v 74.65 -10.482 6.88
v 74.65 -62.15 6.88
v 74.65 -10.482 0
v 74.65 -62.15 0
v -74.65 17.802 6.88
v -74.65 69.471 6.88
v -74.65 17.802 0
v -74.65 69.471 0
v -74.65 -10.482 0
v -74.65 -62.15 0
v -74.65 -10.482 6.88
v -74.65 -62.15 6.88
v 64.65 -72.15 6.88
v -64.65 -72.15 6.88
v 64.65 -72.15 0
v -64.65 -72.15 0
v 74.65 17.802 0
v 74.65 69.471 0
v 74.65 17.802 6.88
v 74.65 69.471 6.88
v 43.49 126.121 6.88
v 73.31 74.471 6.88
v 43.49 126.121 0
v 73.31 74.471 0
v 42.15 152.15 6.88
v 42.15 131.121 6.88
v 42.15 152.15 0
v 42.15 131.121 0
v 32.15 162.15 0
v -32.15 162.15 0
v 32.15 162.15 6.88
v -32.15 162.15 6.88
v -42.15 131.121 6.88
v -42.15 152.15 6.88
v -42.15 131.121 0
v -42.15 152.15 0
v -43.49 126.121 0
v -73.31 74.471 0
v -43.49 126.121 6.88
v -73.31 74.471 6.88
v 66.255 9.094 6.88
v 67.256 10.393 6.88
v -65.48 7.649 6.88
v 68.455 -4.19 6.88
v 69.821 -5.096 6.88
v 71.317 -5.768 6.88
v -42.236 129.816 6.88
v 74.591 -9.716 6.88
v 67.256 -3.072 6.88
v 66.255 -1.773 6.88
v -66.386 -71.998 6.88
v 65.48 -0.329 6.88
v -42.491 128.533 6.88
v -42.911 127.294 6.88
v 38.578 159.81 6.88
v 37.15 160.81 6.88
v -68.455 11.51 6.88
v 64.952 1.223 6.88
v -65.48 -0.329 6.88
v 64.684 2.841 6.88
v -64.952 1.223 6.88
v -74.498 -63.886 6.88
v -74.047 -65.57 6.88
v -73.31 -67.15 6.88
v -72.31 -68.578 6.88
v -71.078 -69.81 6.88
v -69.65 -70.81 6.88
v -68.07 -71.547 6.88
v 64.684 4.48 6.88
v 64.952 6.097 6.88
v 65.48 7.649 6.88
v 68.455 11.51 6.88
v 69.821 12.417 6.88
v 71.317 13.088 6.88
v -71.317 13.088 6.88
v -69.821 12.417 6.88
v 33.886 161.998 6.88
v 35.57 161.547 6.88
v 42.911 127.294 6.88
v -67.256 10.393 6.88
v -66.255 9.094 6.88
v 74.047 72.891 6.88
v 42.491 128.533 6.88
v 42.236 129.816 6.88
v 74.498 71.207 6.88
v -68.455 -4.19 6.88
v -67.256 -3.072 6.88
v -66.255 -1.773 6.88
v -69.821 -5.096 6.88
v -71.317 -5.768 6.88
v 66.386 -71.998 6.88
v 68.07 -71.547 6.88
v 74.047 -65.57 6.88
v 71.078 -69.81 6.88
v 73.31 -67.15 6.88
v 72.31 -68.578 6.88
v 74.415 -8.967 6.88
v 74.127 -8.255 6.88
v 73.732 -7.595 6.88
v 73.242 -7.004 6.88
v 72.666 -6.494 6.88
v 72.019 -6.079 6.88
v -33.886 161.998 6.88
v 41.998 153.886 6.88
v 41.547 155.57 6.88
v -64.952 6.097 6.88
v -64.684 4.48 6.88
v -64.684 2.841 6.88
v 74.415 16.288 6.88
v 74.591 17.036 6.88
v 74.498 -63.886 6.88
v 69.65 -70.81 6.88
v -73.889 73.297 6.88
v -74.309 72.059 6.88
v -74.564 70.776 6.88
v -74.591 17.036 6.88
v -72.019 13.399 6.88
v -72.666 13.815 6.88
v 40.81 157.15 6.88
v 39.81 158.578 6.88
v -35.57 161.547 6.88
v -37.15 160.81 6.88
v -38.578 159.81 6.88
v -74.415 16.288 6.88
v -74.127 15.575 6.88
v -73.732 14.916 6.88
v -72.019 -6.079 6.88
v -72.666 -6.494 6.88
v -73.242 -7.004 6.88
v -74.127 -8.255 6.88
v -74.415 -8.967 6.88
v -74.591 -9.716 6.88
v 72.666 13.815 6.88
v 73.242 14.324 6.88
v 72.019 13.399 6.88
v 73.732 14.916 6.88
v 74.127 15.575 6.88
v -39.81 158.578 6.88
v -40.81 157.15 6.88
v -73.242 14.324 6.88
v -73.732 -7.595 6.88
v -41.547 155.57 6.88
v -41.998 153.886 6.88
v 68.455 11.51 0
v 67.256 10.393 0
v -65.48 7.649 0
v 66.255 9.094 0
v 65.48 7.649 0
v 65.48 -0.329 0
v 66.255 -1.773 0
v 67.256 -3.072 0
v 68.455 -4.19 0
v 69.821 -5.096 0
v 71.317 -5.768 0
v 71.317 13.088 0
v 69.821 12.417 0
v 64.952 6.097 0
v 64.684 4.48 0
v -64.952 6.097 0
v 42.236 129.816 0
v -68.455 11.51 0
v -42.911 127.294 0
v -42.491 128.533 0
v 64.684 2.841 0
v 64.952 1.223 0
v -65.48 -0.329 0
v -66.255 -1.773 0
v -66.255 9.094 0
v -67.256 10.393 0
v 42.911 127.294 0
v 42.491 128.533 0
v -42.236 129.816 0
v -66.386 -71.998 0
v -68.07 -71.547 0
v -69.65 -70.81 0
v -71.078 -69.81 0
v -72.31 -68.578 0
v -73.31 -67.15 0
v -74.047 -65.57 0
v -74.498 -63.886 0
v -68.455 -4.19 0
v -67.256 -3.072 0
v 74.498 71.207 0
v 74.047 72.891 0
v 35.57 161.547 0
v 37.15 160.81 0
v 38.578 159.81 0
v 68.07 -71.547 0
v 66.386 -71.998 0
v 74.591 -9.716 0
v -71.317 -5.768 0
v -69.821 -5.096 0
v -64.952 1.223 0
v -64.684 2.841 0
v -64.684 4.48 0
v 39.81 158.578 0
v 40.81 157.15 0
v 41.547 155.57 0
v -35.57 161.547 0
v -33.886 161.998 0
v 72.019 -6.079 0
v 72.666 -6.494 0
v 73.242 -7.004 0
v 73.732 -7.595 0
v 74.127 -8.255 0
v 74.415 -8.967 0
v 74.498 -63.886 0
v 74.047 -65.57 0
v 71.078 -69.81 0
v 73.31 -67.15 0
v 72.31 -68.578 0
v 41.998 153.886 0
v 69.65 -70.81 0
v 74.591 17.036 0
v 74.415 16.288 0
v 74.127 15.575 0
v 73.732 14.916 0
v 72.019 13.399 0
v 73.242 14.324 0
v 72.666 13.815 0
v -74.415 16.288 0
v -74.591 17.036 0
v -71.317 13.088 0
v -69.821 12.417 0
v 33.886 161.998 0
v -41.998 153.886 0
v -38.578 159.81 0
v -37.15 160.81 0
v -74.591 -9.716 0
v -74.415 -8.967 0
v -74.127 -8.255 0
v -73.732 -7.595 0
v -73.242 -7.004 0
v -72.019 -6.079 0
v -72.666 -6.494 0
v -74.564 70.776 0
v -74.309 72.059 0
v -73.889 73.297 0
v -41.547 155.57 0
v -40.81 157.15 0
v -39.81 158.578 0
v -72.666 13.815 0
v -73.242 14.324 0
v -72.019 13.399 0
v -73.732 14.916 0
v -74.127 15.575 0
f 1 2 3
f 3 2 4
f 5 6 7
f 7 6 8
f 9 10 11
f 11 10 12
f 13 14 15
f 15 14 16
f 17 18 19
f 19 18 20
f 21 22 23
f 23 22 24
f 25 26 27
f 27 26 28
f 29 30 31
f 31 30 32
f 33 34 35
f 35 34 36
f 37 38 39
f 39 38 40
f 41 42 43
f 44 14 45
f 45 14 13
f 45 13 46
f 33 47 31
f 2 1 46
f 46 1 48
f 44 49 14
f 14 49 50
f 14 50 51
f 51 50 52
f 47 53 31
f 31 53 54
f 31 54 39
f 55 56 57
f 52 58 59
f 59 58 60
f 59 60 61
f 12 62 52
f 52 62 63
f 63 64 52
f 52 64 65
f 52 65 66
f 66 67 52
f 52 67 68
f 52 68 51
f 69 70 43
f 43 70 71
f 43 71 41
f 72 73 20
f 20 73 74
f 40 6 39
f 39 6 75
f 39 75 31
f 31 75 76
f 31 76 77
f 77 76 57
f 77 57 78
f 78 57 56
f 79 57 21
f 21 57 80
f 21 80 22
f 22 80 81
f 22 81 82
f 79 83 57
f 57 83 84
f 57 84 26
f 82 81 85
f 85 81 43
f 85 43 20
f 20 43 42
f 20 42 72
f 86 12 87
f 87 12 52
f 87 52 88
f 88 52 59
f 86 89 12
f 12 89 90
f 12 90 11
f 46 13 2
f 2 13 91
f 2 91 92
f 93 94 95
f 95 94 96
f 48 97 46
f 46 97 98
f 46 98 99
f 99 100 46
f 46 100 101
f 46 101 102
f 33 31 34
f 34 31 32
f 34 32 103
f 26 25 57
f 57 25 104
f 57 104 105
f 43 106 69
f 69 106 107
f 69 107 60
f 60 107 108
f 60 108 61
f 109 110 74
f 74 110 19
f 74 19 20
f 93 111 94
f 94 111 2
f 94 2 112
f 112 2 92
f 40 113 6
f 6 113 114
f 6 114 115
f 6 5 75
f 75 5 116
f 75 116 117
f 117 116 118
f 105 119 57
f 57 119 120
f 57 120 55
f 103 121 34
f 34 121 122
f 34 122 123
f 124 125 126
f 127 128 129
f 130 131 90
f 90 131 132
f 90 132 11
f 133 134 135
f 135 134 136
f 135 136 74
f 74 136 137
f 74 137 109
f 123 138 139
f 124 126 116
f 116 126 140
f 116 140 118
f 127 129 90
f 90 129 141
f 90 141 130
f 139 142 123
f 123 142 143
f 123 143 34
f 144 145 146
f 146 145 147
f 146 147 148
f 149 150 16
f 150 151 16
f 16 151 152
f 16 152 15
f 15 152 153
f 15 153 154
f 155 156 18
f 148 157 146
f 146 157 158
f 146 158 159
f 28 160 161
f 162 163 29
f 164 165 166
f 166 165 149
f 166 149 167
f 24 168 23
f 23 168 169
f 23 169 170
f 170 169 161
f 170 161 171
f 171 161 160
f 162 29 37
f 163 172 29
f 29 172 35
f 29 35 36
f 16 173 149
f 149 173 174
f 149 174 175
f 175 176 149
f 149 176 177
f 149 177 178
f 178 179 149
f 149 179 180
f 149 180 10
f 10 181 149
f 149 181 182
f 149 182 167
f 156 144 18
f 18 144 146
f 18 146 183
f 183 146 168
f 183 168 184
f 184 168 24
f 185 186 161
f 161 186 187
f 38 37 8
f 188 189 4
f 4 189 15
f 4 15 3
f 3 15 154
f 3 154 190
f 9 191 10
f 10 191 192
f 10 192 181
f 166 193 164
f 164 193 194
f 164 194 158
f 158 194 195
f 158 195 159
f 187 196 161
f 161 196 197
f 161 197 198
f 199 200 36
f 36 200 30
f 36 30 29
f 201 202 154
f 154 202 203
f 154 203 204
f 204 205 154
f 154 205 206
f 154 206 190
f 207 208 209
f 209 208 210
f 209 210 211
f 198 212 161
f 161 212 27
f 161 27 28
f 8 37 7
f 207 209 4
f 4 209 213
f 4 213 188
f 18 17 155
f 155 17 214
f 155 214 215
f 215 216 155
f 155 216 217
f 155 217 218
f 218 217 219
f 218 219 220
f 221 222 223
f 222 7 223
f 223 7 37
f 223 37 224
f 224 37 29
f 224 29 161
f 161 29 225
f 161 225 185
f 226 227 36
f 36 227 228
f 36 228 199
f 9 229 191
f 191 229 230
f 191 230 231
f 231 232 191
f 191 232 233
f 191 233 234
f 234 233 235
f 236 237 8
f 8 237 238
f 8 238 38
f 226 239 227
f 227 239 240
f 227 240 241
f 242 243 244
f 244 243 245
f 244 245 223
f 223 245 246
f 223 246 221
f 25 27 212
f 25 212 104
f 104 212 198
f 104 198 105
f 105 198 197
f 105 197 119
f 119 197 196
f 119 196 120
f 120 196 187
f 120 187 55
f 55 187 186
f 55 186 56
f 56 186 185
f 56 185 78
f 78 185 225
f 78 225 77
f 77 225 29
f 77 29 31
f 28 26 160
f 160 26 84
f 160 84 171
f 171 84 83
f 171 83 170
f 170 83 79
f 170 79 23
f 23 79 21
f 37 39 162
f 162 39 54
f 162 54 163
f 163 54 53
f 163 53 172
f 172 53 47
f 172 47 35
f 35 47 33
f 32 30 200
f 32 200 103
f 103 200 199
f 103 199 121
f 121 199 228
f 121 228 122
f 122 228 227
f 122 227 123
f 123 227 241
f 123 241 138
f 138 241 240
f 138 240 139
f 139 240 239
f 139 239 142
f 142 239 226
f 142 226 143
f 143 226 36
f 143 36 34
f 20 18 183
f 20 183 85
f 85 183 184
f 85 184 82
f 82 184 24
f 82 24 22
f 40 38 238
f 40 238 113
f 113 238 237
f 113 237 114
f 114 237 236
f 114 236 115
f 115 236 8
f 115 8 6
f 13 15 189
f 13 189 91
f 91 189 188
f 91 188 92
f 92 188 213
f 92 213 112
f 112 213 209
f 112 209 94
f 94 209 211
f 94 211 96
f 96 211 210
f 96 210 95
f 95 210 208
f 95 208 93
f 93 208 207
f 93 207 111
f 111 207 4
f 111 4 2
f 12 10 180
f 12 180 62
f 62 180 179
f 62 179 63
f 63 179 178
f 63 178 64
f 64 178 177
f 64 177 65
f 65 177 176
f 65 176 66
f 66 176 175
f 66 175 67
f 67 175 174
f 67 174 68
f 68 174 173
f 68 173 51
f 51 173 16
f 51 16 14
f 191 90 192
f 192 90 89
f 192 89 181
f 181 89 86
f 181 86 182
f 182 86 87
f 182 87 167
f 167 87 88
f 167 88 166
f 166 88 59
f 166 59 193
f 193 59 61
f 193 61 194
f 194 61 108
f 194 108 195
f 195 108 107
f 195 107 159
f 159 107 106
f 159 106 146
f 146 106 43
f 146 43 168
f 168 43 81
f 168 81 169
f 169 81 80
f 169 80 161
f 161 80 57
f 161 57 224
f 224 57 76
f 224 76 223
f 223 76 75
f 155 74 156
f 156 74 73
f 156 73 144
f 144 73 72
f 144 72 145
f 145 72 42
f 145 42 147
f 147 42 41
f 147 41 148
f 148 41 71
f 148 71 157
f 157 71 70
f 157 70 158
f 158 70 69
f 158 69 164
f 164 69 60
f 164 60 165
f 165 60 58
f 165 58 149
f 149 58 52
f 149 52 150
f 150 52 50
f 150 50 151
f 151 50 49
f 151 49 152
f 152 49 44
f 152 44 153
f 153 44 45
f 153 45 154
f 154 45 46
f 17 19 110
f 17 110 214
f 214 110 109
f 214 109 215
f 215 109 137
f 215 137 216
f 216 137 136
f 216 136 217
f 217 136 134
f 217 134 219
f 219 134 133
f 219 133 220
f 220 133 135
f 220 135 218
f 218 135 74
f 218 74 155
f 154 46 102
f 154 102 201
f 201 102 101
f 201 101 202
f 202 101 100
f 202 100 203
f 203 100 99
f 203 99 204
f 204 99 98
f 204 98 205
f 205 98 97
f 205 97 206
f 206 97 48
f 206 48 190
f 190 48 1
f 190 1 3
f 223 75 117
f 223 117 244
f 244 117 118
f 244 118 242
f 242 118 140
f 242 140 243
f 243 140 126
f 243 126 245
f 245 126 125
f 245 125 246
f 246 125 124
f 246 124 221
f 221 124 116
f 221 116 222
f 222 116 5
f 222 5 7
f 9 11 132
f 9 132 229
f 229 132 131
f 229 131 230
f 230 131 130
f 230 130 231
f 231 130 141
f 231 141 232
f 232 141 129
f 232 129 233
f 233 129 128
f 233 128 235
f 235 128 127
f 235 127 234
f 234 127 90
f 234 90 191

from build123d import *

# Parameters (mm, degrees)
BOSS_EXTRUDE1_DEPTH = 6.88
FILLET1_R           = 10
SKETCH2_R           = 10
CUT_EXTRUDE1_DEPTH  = 179.640923083
FILLET2_R           = 5


with BuildPart() as part:
    # Sketch1 → Boss-Extrude1 (new body)
    with BuildSketch(Plane.XY):
        Polygon((-74.65, 72.15), (-42.15, 128.441651246), (-42.15, 162.15), (-22.688475773, 162.15), (22.688475773, 162.15), (42.15, 162.15), (42.15, 128.441651246), (74.65, 72.15), (74.65, -72.15), (-74.65, -72.15), align=None)
    extrude(amount=BOSS_EXTRUDE1_DEPTH)

    # Fillet1
    fillet1_edges = [part.edges().sort_by_distance(p)[0] for p in [
        (-74.65, 72.15, 3.44),
        (-42.15, 128.441651246, 3.44),
        (-42.15, 162.15, 3.44),
        (42.15, 162.15, 3.44),
        (42.15, 128.441651246, 3.44),
        (74.65, 72.15, 3.44),
        (74.65, -72.15, 3.44),
        (-74.65, -72.15, 3.44),
    ]]
    fillet(fillet1_edges, radius=FILLET1_R)

    # Sketch2 → Cut-Extrude1 (cut, through all)
    with BuildSketch(Plane.XY.offset(6.88)):
        with Locations((-74.65, 3.660254038)):
            Circle(SKETCH2_R)
        with Locations((74.65, 3.660254038)):
            Circle(SKETCH2_R)
    extrude(amount=-CUT_EXTRUDE1_DEPTH, mode=Mode.SUBTRACT)

    # Fillet2
    fillet2_edges = [part.edges().sort_by_distance(p)[0] for p in [
        (-74.65, 13.660254038, 3.44),
        (-74.65, -6.339745962, 3.44),
        (74.65, -6.339745962, 3.44),
        (74.65, 13.660254038, 3.44),
    ]]
    fillet(fillet2_edges, radius=FILLET2_R)


solid = part.part
